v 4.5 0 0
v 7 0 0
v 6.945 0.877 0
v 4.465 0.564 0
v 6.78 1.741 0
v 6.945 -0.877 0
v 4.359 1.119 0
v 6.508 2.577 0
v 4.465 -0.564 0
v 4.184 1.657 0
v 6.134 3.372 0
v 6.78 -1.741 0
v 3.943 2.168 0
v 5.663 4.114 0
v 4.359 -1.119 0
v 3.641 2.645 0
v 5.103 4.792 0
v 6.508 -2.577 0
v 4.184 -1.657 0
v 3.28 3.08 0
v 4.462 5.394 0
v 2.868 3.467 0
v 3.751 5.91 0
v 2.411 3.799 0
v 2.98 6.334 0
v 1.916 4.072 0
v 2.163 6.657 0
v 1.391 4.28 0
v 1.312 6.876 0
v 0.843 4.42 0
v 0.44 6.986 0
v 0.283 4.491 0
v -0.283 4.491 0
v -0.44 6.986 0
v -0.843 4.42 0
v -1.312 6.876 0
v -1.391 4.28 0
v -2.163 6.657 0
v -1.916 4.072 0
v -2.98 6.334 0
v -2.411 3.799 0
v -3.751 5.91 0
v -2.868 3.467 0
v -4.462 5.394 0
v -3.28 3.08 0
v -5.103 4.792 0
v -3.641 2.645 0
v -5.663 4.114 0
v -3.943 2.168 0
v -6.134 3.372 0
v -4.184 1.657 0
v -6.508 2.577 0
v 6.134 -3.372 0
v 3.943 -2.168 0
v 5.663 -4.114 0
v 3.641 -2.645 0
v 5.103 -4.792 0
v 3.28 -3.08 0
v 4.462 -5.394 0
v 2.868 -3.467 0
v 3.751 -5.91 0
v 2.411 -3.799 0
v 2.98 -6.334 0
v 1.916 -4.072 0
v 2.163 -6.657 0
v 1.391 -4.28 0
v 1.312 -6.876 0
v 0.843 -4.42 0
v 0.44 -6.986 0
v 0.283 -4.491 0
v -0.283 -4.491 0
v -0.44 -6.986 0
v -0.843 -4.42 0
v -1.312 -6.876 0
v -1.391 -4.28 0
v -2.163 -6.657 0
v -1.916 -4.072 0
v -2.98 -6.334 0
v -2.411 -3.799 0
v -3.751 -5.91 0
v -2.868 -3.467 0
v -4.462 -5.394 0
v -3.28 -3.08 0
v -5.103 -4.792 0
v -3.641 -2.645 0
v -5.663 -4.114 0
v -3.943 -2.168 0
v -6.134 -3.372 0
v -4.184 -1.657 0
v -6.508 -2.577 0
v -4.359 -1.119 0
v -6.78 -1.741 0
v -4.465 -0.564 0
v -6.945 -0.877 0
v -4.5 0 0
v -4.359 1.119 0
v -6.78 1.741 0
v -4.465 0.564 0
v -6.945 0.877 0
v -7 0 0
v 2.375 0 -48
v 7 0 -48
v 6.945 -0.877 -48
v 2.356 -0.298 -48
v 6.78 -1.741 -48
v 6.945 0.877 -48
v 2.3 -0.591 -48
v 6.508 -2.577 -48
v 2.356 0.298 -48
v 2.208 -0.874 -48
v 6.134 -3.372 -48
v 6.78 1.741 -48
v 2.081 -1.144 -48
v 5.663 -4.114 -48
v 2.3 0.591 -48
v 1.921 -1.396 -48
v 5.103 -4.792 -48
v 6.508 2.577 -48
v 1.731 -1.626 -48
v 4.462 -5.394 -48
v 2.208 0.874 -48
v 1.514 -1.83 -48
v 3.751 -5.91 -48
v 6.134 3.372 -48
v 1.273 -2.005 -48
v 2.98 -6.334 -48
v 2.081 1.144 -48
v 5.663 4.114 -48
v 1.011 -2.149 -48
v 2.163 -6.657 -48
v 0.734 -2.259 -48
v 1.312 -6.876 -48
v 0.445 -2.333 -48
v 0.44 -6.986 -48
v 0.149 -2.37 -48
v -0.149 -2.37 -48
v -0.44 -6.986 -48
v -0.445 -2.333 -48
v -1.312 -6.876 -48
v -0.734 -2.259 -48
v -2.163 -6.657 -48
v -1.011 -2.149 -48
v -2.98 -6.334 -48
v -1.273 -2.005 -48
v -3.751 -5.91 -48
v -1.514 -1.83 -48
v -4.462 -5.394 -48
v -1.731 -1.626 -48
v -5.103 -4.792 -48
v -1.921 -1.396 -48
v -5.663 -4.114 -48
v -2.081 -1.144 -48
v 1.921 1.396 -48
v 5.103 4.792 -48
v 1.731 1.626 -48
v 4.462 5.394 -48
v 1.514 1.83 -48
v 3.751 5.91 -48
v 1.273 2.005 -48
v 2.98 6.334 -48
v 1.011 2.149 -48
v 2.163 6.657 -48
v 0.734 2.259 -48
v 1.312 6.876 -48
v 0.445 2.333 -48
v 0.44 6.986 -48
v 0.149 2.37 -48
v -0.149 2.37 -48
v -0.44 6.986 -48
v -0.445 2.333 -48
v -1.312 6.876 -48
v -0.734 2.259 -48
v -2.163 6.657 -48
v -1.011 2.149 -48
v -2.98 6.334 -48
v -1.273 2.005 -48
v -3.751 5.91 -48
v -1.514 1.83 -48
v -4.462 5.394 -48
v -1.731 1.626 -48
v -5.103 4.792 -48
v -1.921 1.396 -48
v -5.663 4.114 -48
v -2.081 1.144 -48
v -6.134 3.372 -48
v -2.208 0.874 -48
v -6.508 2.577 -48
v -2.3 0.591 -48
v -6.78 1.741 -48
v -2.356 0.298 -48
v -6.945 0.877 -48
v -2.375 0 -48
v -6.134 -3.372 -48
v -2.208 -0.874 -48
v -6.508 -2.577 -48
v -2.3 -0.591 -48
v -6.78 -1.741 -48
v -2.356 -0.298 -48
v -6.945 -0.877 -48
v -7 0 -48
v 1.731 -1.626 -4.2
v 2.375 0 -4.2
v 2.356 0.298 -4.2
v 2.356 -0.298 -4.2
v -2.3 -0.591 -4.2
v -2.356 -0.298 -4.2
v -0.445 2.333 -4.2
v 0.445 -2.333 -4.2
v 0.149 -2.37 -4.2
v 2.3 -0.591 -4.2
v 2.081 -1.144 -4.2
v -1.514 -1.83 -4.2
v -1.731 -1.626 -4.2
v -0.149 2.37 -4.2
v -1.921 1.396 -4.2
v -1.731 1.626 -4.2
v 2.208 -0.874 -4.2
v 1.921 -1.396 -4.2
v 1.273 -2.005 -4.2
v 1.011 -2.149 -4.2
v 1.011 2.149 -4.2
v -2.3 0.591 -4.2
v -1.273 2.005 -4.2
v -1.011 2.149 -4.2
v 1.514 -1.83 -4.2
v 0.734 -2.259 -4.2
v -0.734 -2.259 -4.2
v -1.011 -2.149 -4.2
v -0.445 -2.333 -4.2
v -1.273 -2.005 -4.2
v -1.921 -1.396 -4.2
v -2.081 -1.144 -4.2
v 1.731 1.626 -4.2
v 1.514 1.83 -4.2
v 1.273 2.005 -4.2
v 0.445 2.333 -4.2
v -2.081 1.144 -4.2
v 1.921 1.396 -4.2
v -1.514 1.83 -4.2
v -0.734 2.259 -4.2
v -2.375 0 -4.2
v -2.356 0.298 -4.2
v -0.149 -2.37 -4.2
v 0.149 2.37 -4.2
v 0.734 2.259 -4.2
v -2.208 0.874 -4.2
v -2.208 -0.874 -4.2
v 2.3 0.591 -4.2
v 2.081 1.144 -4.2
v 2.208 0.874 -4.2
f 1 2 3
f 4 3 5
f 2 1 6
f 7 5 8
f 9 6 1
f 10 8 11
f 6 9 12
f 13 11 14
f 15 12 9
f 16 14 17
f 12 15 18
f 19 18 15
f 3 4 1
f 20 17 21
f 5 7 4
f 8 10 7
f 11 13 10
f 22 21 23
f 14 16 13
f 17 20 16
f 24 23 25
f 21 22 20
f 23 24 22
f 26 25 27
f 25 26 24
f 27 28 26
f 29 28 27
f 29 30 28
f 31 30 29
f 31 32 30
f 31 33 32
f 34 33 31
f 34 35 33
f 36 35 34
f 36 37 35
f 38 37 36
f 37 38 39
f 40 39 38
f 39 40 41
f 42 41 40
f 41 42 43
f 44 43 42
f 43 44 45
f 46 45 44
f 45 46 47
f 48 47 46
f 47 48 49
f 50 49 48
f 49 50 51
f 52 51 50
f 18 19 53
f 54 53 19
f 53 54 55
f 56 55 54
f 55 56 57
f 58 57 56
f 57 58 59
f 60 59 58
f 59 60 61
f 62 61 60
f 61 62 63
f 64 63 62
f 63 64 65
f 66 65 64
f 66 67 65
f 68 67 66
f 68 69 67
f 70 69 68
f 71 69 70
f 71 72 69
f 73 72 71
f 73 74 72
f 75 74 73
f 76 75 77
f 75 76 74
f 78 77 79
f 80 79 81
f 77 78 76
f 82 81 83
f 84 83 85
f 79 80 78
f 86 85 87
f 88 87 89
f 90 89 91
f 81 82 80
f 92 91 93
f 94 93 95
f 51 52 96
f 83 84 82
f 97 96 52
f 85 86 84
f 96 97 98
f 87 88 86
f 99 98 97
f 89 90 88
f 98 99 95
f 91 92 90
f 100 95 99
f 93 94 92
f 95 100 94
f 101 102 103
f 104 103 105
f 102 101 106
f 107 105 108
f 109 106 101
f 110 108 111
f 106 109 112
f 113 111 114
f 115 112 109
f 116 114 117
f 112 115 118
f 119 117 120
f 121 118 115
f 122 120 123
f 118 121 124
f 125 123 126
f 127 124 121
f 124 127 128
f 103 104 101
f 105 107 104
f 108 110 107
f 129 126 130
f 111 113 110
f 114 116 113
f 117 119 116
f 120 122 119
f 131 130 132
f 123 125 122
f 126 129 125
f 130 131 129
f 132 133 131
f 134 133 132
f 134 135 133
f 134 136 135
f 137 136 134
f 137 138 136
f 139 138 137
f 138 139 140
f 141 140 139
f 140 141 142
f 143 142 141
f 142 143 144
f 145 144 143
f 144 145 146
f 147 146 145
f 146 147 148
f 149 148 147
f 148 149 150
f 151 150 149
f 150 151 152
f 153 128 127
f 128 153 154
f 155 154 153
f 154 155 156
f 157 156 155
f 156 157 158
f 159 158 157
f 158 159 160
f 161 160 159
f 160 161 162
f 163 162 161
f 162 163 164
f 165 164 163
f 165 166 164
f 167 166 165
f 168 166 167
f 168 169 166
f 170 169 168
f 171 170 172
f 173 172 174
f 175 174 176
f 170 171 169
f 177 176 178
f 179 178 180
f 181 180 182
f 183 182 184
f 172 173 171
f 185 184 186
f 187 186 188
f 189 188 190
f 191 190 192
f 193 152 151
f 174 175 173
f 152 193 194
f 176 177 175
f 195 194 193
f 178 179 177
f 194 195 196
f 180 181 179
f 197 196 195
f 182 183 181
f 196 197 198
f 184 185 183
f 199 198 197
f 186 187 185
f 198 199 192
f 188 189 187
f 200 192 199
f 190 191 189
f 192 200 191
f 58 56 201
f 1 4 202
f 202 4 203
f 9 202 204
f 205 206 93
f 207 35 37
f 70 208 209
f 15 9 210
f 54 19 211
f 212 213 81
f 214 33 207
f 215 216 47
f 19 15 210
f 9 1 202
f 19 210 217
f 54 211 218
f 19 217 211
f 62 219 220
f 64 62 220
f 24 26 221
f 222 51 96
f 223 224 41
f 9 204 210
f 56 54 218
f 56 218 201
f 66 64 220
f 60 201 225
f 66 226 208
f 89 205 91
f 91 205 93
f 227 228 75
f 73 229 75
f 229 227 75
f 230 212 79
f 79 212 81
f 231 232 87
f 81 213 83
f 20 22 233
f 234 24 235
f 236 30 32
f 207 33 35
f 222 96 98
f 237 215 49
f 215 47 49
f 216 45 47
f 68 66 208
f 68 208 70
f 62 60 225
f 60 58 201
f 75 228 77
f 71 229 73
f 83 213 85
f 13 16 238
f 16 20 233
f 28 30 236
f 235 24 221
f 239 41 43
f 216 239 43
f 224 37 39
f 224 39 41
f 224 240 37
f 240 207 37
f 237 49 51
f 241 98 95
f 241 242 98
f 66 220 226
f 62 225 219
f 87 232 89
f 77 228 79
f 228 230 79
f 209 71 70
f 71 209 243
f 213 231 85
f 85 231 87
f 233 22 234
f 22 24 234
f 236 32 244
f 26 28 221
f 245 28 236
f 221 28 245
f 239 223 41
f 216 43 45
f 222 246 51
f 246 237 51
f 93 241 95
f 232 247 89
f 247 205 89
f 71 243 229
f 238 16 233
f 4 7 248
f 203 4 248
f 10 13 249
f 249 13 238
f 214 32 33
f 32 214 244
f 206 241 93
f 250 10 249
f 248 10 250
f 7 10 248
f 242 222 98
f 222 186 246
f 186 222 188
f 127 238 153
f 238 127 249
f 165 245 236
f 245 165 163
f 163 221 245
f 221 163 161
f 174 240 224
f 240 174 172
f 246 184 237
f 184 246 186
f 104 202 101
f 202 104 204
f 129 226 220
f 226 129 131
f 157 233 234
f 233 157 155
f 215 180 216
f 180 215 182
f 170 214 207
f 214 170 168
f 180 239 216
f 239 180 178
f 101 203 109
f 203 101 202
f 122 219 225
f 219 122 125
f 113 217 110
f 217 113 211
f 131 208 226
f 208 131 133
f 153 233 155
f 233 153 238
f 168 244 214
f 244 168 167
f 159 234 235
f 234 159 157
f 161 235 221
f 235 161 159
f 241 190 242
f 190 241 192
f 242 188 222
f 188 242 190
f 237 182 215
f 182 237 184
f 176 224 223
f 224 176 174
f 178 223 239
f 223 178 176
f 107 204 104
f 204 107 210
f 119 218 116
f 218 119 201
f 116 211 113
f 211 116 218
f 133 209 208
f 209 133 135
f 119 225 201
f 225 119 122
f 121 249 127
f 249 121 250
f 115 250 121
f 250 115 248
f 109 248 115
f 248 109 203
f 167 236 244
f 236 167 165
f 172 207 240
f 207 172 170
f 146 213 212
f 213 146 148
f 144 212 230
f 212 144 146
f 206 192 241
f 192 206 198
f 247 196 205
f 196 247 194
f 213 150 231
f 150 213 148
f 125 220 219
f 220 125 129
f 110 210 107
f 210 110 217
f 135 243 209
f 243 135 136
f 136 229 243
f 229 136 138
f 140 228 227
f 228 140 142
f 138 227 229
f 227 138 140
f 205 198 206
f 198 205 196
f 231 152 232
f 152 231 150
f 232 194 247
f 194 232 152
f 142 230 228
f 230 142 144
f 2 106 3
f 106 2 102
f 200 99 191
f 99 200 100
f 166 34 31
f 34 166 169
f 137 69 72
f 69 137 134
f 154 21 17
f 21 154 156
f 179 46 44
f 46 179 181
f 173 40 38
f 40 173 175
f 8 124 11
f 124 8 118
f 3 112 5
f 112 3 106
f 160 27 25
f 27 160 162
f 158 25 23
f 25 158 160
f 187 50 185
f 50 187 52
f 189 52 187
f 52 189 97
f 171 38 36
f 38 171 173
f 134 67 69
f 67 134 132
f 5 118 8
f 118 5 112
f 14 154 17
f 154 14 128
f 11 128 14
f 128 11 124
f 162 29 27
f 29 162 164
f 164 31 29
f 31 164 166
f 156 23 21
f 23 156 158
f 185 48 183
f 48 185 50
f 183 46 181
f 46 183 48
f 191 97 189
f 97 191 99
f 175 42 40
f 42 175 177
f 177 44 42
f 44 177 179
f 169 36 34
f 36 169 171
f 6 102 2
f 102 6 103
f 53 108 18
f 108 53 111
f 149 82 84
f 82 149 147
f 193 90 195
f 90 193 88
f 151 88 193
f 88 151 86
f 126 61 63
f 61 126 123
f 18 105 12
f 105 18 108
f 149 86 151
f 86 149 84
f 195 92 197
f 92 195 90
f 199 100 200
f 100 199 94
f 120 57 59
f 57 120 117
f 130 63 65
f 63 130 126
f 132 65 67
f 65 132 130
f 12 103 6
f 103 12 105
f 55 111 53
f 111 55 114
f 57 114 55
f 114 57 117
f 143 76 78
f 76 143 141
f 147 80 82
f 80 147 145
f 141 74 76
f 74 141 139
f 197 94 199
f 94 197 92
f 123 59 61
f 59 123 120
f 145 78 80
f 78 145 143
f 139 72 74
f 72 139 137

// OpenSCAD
$fn = 50;


difference() {
	union() {
		translate(v = [0, 0, -48.0000000000]) {
			cylinder(h = 48, r = 7.0000000000);
		}
	}
	union() {
		translate(v = [0, 0, 0]) {
			rotate(a = [0, 0, 0]) {
				difference() {
					union() {
						#translate(v = [0, 0, -48.0000000000]) {
							cylinder(h = 48, r = 2.2500000000);
						}
						#translate(v = [0, 0, -4.2000000000]) {
							cylinder(h = 4.2000000000, r = 7.0000000000, r1 = 2.3750000000, r2 = 4.5000000000);
						}
						#translate(v = [0, 0, -48.0000000000]) {
							cylinder(h = 48, r = 2.3750000000);
						}
						#translate(v = [0, 0, -48.0000000000]) {
							cylinder(h = 48, r = 2.2500000000);
						}
					}
					union();
				}
			}
		}
	}
}
